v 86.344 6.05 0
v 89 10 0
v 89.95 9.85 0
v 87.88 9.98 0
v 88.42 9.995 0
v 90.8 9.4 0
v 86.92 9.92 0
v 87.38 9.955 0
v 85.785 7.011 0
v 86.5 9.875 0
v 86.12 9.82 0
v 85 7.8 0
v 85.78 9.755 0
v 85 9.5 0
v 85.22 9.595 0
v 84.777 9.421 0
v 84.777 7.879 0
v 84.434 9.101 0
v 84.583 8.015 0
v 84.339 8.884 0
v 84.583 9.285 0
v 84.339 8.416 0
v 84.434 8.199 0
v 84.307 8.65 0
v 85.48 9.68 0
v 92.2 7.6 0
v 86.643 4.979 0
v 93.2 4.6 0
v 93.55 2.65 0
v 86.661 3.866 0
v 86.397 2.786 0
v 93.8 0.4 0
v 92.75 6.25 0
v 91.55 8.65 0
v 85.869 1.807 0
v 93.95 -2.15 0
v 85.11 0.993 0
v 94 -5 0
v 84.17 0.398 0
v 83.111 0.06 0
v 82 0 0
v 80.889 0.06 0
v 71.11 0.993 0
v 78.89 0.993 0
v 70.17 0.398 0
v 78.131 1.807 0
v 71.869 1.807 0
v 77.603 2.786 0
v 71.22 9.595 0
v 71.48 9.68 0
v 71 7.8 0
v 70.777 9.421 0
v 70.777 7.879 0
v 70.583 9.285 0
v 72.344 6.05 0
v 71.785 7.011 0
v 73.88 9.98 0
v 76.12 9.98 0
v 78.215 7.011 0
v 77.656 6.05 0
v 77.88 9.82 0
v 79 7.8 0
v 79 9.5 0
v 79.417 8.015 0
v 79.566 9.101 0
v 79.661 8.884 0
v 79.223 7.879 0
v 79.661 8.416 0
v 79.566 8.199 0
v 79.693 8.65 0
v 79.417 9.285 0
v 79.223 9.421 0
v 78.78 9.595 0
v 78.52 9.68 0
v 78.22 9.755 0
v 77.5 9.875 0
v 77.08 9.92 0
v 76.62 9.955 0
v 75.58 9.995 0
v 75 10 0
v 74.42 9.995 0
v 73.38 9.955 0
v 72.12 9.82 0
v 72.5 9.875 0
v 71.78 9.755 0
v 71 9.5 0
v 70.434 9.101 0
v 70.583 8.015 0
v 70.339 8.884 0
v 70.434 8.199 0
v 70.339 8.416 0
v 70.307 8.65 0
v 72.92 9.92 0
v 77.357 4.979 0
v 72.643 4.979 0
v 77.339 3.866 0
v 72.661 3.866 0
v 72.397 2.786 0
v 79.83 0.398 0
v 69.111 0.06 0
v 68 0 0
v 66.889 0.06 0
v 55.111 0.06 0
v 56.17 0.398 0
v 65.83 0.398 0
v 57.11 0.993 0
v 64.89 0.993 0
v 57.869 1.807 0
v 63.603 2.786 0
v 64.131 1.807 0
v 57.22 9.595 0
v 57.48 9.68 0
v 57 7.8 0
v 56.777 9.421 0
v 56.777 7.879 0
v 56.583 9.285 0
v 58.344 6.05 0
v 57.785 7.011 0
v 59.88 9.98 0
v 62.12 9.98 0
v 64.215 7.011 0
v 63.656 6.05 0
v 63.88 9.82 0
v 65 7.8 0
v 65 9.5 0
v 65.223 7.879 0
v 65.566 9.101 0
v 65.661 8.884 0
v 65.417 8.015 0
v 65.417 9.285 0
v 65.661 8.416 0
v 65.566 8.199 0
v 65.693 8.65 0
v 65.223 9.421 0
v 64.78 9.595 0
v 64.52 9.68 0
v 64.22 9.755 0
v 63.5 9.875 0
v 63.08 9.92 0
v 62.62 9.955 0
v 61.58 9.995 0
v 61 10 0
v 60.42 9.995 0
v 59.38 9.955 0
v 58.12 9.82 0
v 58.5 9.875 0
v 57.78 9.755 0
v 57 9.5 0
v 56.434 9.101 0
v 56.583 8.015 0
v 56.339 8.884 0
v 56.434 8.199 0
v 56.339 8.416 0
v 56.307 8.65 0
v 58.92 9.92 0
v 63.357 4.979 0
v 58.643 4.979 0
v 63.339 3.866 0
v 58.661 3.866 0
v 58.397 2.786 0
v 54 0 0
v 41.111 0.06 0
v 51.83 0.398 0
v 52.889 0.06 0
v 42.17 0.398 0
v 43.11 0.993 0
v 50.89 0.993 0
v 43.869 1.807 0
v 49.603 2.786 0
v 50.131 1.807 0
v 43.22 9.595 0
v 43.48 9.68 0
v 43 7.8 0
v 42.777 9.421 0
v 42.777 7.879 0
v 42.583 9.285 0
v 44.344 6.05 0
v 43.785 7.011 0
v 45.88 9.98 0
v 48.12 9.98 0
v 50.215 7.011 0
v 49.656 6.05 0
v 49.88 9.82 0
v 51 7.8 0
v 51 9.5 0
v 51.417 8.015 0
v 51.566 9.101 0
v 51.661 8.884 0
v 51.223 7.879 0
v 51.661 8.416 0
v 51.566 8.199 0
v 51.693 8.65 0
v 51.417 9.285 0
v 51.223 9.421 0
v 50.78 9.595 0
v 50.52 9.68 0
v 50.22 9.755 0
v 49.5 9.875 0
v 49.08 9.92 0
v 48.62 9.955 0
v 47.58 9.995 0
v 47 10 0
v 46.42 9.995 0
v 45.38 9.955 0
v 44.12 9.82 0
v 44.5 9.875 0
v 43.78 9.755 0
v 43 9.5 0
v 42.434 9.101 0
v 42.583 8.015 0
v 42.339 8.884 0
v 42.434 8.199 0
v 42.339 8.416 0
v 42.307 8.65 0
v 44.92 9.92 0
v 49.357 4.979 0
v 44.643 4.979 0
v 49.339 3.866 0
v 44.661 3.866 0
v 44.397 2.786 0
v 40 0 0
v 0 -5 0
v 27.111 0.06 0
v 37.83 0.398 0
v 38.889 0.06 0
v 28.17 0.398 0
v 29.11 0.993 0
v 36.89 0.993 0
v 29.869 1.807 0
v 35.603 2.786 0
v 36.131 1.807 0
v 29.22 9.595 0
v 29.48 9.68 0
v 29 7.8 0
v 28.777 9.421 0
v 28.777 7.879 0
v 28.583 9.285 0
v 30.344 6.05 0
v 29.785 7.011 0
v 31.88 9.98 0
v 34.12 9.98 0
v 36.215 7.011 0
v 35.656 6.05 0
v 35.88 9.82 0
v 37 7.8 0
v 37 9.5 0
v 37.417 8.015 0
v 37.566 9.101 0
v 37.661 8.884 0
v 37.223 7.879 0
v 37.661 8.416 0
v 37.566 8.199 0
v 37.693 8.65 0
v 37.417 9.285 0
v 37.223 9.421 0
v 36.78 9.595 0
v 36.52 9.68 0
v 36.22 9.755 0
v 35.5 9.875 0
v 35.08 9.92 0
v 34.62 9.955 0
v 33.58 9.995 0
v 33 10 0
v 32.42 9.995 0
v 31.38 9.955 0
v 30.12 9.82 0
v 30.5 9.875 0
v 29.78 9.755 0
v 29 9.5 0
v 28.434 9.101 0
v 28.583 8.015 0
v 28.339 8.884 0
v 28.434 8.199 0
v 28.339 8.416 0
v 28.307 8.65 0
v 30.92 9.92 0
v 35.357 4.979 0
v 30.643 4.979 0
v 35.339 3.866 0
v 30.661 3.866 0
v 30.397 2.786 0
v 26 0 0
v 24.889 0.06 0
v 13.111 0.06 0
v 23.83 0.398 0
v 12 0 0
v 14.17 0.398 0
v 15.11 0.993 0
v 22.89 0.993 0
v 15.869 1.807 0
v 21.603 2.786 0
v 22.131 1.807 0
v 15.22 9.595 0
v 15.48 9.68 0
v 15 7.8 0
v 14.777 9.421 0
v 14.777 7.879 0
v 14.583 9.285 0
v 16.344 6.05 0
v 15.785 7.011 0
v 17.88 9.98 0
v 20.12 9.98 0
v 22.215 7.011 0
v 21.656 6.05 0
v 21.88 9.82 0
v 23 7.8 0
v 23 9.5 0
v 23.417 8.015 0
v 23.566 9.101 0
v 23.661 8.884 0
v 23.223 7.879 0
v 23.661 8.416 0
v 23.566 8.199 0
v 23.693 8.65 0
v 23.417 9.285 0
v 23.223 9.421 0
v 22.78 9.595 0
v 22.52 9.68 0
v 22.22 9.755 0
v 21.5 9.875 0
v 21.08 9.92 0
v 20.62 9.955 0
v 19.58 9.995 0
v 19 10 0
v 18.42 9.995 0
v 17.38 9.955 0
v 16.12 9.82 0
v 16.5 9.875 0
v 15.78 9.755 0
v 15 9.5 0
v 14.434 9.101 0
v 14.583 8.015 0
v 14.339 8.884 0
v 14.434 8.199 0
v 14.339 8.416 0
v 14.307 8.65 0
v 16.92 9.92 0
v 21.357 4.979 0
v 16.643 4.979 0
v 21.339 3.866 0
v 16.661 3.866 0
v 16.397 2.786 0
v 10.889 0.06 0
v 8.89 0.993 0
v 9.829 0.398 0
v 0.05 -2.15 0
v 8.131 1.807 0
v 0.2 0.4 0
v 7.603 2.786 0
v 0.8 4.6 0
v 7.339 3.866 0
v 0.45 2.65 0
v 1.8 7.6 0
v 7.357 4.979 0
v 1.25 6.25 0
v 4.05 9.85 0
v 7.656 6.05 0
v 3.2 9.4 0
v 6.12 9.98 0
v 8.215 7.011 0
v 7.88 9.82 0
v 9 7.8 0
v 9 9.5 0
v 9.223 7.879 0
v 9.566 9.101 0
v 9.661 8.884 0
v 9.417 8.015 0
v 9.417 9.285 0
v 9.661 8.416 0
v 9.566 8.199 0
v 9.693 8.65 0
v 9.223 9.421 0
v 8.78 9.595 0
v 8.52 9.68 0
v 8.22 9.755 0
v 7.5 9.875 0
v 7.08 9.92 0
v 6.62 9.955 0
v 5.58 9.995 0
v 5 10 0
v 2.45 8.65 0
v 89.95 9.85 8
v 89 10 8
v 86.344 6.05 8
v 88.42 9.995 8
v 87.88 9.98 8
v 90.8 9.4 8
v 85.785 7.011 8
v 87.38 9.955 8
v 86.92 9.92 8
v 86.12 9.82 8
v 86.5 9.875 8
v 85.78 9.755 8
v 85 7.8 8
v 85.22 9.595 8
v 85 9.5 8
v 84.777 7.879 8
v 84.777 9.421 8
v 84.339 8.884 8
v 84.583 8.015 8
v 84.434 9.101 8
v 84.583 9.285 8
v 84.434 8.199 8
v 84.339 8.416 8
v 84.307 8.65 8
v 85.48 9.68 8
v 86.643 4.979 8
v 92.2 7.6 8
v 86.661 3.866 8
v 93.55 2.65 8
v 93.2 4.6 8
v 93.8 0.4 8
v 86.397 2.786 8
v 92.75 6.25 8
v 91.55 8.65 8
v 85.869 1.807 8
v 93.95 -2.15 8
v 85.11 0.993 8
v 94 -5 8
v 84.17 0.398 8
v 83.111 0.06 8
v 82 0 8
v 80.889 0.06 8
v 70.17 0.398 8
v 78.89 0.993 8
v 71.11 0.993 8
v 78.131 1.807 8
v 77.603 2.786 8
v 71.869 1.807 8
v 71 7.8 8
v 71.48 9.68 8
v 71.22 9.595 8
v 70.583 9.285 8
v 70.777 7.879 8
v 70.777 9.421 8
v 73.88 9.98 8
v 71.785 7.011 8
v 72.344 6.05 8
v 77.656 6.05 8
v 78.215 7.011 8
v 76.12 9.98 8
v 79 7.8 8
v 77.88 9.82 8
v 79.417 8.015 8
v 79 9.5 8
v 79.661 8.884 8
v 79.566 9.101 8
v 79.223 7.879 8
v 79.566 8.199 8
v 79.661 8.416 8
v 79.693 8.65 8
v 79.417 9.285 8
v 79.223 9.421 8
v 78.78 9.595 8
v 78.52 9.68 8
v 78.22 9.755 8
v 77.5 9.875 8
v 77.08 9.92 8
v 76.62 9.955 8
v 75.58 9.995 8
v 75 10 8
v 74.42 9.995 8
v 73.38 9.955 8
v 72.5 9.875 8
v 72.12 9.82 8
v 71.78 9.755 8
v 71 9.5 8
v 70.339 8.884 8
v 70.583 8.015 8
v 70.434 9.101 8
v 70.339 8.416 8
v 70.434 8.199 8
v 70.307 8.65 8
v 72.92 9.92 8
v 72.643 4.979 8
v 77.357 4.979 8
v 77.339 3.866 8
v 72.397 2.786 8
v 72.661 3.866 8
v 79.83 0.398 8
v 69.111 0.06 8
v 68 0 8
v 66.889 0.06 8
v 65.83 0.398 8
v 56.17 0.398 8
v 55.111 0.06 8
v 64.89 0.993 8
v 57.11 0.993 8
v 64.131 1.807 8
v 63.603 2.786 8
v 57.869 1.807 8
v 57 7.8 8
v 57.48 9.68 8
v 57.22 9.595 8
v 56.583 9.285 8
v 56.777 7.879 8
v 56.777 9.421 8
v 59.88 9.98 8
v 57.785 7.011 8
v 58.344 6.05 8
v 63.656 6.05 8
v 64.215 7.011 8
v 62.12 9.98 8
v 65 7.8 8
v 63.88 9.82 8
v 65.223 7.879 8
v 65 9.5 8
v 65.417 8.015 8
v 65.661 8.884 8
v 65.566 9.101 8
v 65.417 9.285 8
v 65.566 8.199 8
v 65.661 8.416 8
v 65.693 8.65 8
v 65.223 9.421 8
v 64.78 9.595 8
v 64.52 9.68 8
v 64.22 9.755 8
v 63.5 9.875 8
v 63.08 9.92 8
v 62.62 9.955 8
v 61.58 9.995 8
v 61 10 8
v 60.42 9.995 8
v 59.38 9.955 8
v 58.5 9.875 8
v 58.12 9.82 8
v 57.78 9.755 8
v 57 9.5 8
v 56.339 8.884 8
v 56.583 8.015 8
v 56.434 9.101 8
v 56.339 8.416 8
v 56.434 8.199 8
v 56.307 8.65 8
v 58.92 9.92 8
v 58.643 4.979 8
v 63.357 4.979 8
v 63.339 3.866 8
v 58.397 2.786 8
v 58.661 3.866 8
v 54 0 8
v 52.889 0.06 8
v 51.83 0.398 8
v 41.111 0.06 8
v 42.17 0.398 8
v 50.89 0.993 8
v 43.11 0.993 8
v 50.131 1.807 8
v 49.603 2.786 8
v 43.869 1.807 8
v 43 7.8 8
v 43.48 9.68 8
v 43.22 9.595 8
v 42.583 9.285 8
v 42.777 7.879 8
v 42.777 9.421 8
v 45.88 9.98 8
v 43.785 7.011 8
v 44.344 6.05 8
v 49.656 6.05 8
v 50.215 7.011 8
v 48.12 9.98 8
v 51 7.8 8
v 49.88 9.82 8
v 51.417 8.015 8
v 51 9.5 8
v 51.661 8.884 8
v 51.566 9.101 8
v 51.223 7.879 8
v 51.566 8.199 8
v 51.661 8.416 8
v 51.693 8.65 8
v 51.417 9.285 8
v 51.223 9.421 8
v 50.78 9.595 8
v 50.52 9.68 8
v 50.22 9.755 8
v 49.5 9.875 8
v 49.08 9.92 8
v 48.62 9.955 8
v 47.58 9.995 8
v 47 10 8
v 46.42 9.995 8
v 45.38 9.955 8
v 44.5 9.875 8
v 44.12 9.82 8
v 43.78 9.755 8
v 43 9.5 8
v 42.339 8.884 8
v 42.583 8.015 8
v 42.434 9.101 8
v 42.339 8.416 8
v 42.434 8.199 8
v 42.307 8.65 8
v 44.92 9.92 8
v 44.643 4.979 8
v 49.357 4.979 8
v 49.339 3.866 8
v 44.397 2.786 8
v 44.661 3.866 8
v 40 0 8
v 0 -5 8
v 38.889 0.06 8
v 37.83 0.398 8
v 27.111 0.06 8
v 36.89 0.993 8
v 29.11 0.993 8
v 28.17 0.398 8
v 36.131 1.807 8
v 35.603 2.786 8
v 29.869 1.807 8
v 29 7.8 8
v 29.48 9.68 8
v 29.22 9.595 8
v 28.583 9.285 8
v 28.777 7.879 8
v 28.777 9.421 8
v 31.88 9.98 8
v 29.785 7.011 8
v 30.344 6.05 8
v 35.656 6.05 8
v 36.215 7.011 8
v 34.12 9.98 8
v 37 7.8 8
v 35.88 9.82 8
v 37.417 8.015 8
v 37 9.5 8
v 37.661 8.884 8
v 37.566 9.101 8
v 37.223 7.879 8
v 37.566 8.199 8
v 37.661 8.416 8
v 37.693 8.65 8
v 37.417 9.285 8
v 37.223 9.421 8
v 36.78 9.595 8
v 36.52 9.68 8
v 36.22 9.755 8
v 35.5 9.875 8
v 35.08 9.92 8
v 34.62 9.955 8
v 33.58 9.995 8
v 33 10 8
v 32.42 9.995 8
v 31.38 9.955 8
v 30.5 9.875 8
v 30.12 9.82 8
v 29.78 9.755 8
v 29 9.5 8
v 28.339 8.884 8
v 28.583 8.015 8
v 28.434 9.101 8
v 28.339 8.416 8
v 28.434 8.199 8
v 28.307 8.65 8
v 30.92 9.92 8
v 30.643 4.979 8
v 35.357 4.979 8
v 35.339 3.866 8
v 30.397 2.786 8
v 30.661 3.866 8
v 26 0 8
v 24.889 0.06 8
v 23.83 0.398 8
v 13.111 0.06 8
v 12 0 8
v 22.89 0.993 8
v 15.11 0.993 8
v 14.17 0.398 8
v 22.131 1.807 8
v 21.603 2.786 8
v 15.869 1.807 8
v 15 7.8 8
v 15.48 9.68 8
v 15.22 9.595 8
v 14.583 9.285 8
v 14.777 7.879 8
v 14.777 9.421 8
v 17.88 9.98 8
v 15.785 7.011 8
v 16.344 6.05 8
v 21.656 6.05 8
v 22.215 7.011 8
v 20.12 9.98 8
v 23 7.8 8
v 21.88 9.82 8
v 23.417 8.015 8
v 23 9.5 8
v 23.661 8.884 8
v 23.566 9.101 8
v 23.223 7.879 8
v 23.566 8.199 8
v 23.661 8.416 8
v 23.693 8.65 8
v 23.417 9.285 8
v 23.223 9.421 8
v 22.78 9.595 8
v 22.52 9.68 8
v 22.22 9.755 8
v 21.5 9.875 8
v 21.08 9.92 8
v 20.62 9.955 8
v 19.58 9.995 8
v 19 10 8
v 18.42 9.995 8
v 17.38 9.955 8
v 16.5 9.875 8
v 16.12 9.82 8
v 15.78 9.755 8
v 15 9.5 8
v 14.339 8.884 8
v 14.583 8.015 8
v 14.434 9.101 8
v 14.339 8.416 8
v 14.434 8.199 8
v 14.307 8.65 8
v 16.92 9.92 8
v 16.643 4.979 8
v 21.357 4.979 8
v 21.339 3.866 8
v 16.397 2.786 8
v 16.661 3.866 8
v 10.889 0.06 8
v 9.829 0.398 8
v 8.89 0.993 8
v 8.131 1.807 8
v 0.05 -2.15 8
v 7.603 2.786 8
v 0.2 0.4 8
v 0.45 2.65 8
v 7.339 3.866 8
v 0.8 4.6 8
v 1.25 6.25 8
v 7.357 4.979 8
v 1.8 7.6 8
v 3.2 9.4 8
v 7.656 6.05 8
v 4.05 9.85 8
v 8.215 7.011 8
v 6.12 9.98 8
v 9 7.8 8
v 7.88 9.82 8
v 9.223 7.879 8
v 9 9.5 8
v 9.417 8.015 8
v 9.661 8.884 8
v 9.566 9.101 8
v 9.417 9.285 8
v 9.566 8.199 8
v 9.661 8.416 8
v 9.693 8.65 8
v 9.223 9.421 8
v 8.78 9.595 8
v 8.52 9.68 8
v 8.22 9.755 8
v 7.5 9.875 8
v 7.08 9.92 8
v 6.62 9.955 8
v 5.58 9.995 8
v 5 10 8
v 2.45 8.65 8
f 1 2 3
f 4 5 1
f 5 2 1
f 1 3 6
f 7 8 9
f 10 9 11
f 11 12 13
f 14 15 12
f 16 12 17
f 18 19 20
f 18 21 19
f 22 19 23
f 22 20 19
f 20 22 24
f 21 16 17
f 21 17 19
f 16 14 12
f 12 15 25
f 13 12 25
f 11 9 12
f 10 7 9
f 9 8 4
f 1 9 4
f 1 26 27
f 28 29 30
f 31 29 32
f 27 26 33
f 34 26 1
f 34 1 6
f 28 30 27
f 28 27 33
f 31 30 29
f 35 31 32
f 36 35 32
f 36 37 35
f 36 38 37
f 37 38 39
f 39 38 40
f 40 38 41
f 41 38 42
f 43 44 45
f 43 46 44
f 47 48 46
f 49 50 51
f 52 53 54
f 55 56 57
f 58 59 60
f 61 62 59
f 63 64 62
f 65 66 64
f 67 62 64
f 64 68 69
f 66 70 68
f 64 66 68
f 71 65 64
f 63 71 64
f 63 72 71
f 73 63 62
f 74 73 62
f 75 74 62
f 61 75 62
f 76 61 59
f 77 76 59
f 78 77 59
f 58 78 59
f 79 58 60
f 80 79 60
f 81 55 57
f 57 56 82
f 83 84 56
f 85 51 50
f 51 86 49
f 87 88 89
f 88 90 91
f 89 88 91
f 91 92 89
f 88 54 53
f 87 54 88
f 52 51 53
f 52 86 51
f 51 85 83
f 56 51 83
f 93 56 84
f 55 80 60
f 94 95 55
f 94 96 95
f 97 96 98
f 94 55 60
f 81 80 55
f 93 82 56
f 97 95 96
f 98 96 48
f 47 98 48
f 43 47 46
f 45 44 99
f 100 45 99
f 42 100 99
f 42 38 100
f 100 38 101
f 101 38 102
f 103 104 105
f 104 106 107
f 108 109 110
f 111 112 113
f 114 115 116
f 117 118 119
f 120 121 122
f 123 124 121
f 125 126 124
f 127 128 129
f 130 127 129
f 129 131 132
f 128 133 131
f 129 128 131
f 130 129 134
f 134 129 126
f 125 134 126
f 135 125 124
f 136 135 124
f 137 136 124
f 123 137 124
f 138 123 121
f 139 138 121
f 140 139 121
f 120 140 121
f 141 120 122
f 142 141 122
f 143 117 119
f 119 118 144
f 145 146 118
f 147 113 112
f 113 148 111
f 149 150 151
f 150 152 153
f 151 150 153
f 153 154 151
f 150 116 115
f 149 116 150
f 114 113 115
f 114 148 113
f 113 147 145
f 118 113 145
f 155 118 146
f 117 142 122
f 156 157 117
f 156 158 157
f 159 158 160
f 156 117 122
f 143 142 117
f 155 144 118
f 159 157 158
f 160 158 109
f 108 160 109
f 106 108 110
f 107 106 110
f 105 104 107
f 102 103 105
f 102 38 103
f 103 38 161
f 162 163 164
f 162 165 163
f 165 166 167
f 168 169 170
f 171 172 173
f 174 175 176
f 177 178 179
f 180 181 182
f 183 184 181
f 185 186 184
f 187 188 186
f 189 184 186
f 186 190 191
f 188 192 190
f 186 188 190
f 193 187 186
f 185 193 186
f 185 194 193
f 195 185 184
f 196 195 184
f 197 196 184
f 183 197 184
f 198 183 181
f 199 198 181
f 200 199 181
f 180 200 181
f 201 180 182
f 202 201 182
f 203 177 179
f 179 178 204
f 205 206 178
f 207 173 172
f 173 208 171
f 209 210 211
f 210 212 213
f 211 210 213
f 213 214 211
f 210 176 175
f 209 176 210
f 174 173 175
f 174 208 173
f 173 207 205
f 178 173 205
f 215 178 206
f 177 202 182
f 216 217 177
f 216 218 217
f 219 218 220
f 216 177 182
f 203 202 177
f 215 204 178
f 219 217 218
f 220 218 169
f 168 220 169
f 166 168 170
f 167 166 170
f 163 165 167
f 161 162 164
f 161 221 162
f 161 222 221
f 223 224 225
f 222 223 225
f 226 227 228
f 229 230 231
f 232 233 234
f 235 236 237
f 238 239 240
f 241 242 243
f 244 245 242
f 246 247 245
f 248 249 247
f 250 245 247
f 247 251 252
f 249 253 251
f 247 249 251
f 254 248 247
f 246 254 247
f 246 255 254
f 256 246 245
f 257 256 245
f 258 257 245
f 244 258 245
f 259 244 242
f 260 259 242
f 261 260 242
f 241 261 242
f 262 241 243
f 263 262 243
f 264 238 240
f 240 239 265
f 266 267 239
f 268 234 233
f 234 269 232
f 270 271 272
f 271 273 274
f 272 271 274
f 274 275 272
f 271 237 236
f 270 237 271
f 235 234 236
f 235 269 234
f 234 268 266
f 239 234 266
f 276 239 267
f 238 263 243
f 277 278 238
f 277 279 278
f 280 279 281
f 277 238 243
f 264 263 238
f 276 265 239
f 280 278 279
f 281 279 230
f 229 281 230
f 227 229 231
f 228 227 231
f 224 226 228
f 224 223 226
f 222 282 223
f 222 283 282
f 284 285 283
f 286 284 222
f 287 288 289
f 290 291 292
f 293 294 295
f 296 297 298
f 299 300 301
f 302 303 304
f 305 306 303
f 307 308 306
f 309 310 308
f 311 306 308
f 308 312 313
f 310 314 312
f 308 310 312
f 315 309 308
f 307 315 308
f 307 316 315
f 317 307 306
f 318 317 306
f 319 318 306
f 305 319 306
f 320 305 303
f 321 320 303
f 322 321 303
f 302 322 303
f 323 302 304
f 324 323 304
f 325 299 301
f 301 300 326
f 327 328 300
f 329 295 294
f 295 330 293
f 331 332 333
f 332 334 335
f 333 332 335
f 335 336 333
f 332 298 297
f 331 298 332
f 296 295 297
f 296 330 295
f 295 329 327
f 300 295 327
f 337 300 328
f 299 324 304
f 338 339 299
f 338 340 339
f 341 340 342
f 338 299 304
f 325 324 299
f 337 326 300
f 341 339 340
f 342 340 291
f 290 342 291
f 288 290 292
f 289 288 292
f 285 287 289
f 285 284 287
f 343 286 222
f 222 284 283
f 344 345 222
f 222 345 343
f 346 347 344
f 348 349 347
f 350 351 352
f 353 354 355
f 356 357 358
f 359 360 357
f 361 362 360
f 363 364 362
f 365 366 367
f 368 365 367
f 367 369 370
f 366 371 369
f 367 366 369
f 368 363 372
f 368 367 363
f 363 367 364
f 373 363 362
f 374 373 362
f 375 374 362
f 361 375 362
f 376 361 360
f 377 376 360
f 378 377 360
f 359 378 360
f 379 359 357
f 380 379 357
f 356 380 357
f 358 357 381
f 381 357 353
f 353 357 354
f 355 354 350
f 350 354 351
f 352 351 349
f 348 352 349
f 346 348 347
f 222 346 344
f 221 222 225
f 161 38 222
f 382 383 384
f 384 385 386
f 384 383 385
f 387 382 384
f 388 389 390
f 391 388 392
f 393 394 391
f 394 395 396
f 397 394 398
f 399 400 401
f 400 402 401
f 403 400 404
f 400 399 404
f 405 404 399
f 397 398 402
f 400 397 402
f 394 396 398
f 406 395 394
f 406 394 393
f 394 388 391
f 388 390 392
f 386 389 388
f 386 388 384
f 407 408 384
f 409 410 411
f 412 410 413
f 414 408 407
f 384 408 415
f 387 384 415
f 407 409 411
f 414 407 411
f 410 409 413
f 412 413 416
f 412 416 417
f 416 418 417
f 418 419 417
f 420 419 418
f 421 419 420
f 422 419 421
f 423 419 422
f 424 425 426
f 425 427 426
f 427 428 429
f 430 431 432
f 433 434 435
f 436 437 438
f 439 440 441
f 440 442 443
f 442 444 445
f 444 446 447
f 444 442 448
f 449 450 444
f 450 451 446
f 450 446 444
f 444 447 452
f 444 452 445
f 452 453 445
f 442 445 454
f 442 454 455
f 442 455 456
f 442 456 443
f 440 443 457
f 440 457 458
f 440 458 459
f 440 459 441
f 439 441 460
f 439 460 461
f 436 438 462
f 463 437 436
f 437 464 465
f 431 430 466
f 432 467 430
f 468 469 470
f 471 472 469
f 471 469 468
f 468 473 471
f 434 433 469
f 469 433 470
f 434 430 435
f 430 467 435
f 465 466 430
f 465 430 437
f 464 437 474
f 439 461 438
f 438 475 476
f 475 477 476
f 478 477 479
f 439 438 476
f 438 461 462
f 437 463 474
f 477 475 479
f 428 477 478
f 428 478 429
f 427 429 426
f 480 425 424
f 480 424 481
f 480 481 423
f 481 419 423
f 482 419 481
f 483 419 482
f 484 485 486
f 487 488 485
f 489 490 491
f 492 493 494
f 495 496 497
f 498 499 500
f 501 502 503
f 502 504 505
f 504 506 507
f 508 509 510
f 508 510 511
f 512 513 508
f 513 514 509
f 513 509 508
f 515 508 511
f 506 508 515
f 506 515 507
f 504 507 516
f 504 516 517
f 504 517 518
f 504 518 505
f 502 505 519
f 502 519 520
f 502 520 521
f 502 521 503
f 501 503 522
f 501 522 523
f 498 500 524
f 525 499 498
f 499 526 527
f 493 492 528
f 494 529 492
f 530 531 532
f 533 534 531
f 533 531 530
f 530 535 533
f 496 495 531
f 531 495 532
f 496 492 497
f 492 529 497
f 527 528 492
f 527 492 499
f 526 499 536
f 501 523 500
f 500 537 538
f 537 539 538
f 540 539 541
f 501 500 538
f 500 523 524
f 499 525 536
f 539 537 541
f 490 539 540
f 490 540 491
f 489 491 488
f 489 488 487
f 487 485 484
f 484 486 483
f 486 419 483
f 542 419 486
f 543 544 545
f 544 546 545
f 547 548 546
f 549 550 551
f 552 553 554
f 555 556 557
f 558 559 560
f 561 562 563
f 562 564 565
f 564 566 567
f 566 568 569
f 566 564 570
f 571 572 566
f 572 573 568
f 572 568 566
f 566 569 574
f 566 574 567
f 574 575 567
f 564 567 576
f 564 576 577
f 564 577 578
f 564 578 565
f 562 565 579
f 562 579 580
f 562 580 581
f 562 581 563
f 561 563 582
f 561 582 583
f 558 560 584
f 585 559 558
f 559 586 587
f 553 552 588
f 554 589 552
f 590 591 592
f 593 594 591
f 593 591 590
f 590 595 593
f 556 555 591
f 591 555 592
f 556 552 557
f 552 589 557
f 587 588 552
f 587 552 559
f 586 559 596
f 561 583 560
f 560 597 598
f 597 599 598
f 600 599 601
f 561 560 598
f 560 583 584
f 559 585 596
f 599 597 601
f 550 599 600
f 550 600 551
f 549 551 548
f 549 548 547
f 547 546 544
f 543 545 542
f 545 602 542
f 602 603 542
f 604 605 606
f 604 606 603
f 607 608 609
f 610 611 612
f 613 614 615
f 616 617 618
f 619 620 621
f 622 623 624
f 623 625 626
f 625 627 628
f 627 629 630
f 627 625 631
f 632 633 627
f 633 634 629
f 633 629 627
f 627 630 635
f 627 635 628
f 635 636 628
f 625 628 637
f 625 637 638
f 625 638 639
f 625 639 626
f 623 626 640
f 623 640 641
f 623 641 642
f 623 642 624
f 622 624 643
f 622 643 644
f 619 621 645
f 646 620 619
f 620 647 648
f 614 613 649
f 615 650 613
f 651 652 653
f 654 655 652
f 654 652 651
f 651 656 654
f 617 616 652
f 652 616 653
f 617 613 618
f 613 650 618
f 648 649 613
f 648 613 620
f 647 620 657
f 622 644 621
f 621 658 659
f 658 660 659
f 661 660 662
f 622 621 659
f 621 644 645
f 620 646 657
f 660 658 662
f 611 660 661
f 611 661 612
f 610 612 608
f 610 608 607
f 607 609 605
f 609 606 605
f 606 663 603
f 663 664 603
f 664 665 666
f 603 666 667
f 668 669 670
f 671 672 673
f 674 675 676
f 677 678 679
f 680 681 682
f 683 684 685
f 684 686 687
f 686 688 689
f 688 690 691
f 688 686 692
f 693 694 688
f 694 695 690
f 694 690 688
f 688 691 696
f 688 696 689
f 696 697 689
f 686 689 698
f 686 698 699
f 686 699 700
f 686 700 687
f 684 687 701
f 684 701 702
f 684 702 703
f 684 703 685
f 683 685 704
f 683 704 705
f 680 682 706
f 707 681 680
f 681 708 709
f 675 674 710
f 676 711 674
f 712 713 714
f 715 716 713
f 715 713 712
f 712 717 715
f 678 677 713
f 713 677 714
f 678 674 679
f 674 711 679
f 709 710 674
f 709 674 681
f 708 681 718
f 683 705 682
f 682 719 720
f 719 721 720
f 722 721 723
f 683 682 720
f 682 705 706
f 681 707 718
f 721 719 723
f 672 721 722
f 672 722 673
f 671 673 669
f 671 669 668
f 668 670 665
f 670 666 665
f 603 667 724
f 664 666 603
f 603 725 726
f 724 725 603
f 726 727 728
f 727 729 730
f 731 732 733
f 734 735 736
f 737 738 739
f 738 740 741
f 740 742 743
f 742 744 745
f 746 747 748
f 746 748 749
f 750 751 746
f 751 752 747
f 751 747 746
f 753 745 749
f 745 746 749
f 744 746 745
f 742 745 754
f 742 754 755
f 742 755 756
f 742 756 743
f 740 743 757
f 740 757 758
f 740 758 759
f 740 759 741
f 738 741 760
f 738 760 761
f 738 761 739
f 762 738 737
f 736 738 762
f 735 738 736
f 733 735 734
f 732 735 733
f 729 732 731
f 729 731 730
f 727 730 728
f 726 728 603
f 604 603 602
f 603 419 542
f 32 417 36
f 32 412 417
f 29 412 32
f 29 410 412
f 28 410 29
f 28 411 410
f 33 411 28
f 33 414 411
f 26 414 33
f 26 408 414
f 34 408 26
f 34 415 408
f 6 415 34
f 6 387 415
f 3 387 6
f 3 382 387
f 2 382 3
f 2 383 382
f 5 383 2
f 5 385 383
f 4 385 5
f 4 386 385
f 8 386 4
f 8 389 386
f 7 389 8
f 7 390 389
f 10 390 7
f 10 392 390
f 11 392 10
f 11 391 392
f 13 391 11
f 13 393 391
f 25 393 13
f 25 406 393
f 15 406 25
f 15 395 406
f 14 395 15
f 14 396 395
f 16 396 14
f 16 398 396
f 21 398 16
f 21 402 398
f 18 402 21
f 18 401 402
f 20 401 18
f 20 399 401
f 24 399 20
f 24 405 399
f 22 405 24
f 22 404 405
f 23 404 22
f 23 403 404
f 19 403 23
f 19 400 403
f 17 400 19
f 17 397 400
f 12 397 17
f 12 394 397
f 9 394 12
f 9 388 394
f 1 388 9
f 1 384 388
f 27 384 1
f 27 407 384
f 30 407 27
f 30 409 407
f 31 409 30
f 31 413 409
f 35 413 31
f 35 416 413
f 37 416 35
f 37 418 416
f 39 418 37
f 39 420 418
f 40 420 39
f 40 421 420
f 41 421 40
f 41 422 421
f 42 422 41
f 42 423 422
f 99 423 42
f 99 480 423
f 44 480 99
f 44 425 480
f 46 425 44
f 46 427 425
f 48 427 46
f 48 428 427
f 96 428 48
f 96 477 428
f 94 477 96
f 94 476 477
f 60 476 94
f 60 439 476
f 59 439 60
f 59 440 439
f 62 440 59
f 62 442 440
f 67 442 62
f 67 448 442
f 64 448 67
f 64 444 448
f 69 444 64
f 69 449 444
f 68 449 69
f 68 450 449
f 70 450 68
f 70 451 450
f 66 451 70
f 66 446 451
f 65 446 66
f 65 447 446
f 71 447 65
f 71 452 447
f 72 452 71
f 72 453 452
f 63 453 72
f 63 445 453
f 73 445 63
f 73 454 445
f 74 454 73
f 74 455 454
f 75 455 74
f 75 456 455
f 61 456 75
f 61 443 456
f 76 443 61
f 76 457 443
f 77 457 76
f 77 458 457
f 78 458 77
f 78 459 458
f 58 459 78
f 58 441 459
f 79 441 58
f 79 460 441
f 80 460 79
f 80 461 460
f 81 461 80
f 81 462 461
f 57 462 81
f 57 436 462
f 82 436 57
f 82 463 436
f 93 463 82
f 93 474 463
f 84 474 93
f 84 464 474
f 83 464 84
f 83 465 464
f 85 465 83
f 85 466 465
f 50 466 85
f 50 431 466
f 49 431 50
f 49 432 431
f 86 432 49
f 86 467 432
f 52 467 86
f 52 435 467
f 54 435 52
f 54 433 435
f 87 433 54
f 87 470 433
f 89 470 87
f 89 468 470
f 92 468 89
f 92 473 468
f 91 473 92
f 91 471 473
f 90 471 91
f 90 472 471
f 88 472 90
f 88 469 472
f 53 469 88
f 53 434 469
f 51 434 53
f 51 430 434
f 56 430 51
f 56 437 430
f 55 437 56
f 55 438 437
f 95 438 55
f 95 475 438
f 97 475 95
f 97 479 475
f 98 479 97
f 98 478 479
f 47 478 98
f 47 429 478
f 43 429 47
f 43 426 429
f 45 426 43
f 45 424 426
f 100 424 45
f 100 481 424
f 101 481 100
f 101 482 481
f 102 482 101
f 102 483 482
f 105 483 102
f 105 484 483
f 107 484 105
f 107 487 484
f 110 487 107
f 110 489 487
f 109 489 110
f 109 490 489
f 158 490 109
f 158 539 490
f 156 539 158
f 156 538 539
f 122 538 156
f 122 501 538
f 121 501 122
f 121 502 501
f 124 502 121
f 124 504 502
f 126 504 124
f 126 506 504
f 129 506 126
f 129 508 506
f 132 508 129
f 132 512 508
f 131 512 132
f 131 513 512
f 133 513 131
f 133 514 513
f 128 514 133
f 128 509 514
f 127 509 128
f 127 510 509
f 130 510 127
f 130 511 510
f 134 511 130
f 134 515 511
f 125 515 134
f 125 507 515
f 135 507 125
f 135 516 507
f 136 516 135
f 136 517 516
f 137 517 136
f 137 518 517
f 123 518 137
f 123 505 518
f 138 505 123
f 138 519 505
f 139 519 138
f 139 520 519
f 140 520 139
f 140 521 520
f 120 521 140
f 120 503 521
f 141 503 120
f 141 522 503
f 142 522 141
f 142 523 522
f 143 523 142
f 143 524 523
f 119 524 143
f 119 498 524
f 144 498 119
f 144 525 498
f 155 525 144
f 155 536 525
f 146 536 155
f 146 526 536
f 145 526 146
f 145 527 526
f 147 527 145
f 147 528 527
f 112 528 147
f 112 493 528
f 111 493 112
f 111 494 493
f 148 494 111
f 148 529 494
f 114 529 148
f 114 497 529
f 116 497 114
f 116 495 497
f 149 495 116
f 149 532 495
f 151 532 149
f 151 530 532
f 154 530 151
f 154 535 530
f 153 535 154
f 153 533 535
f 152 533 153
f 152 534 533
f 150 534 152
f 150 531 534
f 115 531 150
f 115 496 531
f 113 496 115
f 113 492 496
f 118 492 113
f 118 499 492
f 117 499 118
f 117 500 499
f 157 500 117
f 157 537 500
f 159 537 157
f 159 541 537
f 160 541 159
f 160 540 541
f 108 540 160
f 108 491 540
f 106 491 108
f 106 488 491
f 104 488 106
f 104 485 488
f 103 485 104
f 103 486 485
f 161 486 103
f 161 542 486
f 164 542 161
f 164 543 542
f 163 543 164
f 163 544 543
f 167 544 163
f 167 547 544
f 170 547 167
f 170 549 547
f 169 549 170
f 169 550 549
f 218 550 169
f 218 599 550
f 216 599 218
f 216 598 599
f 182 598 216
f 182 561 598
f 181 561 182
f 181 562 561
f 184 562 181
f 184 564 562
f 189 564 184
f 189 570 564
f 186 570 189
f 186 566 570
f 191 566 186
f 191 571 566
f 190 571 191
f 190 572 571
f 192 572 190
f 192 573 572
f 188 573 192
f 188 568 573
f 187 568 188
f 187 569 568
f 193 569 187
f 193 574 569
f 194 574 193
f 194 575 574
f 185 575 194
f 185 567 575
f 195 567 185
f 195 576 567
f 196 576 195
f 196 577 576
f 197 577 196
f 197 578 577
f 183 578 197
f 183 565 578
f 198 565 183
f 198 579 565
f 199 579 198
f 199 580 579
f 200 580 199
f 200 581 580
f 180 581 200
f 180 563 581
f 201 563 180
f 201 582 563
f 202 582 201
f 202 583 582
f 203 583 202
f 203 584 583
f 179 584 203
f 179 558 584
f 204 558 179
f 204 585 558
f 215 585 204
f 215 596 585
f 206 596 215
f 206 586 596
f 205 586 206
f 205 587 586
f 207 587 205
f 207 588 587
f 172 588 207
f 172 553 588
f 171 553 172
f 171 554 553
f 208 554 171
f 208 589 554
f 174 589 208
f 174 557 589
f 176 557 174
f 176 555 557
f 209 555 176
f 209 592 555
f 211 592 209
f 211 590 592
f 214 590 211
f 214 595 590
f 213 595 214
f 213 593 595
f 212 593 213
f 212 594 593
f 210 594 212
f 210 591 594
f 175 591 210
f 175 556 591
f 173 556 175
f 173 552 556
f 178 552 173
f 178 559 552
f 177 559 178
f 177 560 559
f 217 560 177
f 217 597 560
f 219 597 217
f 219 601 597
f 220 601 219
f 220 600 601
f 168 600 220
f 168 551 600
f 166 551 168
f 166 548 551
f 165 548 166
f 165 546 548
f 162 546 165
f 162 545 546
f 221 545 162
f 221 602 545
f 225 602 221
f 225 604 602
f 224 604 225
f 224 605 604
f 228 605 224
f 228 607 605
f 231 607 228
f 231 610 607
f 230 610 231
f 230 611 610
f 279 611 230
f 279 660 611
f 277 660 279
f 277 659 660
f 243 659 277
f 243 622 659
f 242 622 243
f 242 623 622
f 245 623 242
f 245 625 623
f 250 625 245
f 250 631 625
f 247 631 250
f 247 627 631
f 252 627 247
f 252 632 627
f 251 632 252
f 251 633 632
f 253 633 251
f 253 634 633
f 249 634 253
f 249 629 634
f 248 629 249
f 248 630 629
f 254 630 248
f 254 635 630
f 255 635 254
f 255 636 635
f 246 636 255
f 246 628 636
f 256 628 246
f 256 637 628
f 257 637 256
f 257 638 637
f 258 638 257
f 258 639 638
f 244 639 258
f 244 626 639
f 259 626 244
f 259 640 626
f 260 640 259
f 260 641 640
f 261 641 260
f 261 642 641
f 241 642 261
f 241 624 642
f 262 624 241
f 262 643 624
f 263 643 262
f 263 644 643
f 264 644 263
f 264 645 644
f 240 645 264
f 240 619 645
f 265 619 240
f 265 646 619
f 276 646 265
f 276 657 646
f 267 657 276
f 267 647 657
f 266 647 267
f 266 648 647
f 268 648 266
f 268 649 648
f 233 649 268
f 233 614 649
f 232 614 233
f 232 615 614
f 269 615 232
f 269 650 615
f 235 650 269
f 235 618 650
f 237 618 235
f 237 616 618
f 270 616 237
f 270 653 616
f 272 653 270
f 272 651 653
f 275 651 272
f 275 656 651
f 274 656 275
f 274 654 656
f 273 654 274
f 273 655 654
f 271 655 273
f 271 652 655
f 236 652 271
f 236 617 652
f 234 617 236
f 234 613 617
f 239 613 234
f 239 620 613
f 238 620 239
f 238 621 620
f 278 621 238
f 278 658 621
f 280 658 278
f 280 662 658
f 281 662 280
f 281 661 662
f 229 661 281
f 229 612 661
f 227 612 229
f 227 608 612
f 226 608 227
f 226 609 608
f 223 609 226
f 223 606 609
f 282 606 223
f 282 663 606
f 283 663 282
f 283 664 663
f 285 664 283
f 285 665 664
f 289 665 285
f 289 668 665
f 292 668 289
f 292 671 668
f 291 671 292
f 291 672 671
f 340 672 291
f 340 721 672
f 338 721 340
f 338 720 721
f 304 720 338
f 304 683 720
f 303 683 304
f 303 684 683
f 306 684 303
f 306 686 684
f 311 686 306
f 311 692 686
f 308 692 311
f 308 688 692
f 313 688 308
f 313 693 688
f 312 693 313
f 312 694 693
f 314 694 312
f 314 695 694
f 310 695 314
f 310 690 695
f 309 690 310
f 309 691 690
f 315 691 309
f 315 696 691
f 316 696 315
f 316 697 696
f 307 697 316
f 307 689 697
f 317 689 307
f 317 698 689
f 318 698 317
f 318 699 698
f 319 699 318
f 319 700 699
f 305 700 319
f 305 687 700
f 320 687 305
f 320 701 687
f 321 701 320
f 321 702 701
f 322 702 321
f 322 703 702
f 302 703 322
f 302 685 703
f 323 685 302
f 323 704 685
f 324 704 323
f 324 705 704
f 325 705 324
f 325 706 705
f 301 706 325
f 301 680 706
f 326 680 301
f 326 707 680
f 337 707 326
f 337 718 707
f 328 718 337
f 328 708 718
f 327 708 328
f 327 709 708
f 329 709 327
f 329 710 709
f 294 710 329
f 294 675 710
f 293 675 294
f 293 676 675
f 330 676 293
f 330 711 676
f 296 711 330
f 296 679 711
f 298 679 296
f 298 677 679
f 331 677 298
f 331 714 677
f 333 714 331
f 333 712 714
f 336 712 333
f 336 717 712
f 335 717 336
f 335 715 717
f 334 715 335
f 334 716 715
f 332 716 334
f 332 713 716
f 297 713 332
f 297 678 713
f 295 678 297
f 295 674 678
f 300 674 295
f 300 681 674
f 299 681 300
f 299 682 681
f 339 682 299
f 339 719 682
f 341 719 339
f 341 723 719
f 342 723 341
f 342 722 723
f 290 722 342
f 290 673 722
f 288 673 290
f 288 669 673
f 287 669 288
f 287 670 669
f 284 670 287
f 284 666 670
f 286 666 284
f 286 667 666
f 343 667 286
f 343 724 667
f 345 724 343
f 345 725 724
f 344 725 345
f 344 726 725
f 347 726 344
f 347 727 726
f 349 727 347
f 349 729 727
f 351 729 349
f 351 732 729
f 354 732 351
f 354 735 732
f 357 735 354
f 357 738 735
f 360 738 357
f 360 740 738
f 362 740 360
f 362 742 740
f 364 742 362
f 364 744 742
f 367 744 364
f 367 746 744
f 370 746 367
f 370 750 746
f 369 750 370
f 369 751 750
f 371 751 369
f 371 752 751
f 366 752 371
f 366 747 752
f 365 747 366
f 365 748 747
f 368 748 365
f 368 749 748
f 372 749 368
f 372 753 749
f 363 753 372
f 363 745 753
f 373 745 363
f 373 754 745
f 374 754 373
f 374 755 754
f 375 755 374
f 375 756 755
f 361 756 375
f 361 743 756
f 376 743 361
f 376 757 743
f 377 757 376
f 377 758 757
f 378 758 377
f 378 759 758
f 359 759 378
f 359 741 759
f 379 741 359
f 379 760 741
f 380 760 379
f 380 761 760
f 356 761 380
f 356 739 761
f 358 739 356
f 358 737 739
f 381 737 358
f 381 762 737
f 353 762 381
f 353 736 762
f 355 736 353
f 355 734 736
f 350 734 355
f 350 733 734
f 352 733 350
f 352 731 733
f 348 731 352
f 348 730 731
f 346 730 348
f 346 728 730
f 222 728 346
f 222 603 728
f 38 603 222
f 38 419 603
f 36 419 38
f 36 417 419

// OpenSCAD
// file: vector.scad
function is_nan(x) = x != x ;

// reverse vector
function reverse(v) = [for (i =[len(v)-1:-1:0]) v[i]];
// repeat vector n-times
function repeat(v, n) = [for (i=[0:n*len(v)-1])  v[ i%len(v) ] ];
// allow negative indexes for vector (counting from the back). -1 is last element in array
function v_index(v, n) = is_undef(n) ? len(v) : n < 0 ? len(v)+n : n ;
// cut slice of vertor. `start` included , `end` excluded.
function slice(v, start, end=undef) = [for (i=[start:v_index(v,end)-1]) v[i] ];

function v_add(v, n) = [for (i=[0:len(v)-1]) v[i]+n ];

assert(reverse([1,2,3]) == [3,2,1]);
assert(repeat([1,2],3) ==  [1, 2, 1, 2, 1, 2]);
assert(v_index([1,2,3],-1)==2);
assert(v_index([1,2,3],0) == 0);
assert(v_index([1,2,3],undef)==3);
assert(slice([1,2,3],1,-1)==[2]);
assert(slice([1,2,3],1)==[2,3]);
assert(v_add([1,2,3],1)==[2,3,4]);
// file: 2d.scad
use <vector.scad>

function max_x(a, i = 0) = (len(a) == 0) ? 0 : (i < len(a) - 1) ? max(a[i][0], max_x(a, i+1)) : a[i][0];
function shift_x(a, dx, scaler=1) = [for ( p=a) [scaler*p[0]+dx,p[1]] ];
function inverse_x(a) = shift_x(reverse(a),max_x(a),-1);

function concat_with_undefs(prev,next) = 
    len(prev) == 0 ? next : 
        let (prev_last_p = prev[v_index(prev,-1)]) 
        is_undef(prev_last_p[1])  
            ? concat(slice(prev,0,-1),[[prev_last_p[0],next[0][1]]],next) 
            : is_undef(next[0][1]) 
                ? concat(prev, [[next[0][0],prev_last_p[1]]], slice(next,1)) 
                : concat(prev, next) ;

function join_poly(polys, r = [], i=0) = (i < len(polys)) ? 
    join_poly( polys, concat_with_undefs(r,shift_x(polys[i],max_x(r))) ,i+1) : r;

function line_segment(p1,p2) = [p1,[p2[0]-p1[0], p2[1] - p1[1]]];

function ls_slope(ls) = ls[1][1]/ls[1][0] ;

function ls_distance(ls) = sqrt(pow(ls[1][1],2)+pow(ls[1][0],2));

function ls_angle(ls) = 
    let (ta = asin(ls[1][1]/ls_distance(ls))) 
    sign(ls[1][0]) == -1 ? sign(ta) * 180 - ta : ta ;

function angle_diff_cw(a1, a2) = a1 < a2 ? angle_diff_cw(a1+360, a2) : a1 - a2 ;

function angle_diff_ccw(a1, a2) = angle_diff_cw(a2, a1);

function ls_midpoint(ls) = ls[0]+ls[1]/2;

function ls_endpoint(ls) = ls[0]+ls[1];

function line(slope,pt) = [slope, pt[1]-slope*pt[0]];

function l_y(l,x) = l[0]*x + l[1];

function l_segment(l,x1,x2) = line_segment([x1, l_y(l,x1)], [x2, l_y(l,x2)]);

function ls_line(ls) = let(slope=ls_slope(ls)) line(slope,ls[0]);

function ls_perpendicular(ls) = 
    let (l = ls_line(ls)) 
    let (mp = ls_midpoint(ls))
    line(-1/l[0], mp);

function intersect_lines(l1, l2) = 
    let (x = (l2[1]-l1[1])/(l1[0]-l2[0]))
    [x,l_y(l1,x)];

function interpolate_point(ls,fraction) =  [
    ls[0][0] + fraction*ls[1][0],
    ls[0][1] + fraction*ls[1][1]
];

function bezier_curve(p1 , p2,  p3) =
    [line_segment(p1,p2), line_segment(p2, p3)];

function curve_point(bc, fraction) =
    interpolate_point(
        line_segment(
            interpolate_point(bc[0],fraction), 
            interpolate_point(bc[1], fraction)), 
        fraction);

function bc_poly(bc, n_points=10) = [for ( f = [0:1/n_points:1]) curve_point(bc, f)] ;

function rake_poly(up_ramp, down_to_valley, n_of_valleys) = 
    join_poly(concat(
        [up_ramp],
        repeat(
            [
                down_to_valley, 
                inverse_x(down_to_valley) // up on other side of the valley
            ], 
            n_of_valleys),
        [inverse_x(up_ramp)] // down ramp
    ));


function arc_point(a,f) = 
    let(c = a[0])
    let(r = a[1])
    let(initial_angle = a[2])
    let(cw = a[3])
    let(range = a[4])
    let (angle = cw ? initial_angle - f * range : initial_angle + f * range)
    c+[r*cos(angle),r*sin(angle)];

function arc_poly(a, n_points=10) = [for ( f = [0:1/n_points:1]) arc_point(a, f)] ;

function arc( p1, p2, p3 ) =
    let(ls1 = line_segment(p1,p2))
    let(ls2 = line_segment(p2,p3))
    let(ls3 = line_segment(p1,p3))    
    let(lp1 = ls_perpendicular(ls1))
    let(lp2 = ls_perpendicular(ls2))
    let(lp3 = ls_perpendicular(ls3))
    let(c12 = intersect_lines(lp1,lp2))
    let(c23 = intersect_lines(lp2,lp3))
    let(c13 = intersect_lines(lp1,lp3))
    let(c = !is_nan(c23[0]) ? c23 : !is_nan(c13[0])? c13 : c12 )
    let(r1 = line_segment(c,p1))
    let(r2 = line_segment(c,p2))
    let(r3 = line_segment(c,p3))
    let(r = ls_distance(r1))
    let(a1 = ls_angle(r1))
    let(a2 = ls_angle(r2))
    let(a3 = ls_angle(r3))
    let(cw = angle_diff_cw(a1,a2) < angle_diff_cw(a1,a3))
    let(a_diff = cw ? angle_diff_cw(a1,a3) : angle_diff_ccw(a1,a3))
    [c,r,a1,cw,a_diff];
// main file
use <2d.scad>


ramp = bc_poly(bezier_curve([0,-5],[0,10],[5,10]));
valley = concat(
    bc_poly(bezier_curve([0,10],[3,10],[4,9.5])), 
    arc_poly(arc([4,9.5],[4.4,8],[4,7.8])),
    arc_poly(arc([4,7.8],[3, 2],[7,0]))
); 

linear_extrude(height=8)
polygon(points=rake_poly(ramp, valley, 6));
